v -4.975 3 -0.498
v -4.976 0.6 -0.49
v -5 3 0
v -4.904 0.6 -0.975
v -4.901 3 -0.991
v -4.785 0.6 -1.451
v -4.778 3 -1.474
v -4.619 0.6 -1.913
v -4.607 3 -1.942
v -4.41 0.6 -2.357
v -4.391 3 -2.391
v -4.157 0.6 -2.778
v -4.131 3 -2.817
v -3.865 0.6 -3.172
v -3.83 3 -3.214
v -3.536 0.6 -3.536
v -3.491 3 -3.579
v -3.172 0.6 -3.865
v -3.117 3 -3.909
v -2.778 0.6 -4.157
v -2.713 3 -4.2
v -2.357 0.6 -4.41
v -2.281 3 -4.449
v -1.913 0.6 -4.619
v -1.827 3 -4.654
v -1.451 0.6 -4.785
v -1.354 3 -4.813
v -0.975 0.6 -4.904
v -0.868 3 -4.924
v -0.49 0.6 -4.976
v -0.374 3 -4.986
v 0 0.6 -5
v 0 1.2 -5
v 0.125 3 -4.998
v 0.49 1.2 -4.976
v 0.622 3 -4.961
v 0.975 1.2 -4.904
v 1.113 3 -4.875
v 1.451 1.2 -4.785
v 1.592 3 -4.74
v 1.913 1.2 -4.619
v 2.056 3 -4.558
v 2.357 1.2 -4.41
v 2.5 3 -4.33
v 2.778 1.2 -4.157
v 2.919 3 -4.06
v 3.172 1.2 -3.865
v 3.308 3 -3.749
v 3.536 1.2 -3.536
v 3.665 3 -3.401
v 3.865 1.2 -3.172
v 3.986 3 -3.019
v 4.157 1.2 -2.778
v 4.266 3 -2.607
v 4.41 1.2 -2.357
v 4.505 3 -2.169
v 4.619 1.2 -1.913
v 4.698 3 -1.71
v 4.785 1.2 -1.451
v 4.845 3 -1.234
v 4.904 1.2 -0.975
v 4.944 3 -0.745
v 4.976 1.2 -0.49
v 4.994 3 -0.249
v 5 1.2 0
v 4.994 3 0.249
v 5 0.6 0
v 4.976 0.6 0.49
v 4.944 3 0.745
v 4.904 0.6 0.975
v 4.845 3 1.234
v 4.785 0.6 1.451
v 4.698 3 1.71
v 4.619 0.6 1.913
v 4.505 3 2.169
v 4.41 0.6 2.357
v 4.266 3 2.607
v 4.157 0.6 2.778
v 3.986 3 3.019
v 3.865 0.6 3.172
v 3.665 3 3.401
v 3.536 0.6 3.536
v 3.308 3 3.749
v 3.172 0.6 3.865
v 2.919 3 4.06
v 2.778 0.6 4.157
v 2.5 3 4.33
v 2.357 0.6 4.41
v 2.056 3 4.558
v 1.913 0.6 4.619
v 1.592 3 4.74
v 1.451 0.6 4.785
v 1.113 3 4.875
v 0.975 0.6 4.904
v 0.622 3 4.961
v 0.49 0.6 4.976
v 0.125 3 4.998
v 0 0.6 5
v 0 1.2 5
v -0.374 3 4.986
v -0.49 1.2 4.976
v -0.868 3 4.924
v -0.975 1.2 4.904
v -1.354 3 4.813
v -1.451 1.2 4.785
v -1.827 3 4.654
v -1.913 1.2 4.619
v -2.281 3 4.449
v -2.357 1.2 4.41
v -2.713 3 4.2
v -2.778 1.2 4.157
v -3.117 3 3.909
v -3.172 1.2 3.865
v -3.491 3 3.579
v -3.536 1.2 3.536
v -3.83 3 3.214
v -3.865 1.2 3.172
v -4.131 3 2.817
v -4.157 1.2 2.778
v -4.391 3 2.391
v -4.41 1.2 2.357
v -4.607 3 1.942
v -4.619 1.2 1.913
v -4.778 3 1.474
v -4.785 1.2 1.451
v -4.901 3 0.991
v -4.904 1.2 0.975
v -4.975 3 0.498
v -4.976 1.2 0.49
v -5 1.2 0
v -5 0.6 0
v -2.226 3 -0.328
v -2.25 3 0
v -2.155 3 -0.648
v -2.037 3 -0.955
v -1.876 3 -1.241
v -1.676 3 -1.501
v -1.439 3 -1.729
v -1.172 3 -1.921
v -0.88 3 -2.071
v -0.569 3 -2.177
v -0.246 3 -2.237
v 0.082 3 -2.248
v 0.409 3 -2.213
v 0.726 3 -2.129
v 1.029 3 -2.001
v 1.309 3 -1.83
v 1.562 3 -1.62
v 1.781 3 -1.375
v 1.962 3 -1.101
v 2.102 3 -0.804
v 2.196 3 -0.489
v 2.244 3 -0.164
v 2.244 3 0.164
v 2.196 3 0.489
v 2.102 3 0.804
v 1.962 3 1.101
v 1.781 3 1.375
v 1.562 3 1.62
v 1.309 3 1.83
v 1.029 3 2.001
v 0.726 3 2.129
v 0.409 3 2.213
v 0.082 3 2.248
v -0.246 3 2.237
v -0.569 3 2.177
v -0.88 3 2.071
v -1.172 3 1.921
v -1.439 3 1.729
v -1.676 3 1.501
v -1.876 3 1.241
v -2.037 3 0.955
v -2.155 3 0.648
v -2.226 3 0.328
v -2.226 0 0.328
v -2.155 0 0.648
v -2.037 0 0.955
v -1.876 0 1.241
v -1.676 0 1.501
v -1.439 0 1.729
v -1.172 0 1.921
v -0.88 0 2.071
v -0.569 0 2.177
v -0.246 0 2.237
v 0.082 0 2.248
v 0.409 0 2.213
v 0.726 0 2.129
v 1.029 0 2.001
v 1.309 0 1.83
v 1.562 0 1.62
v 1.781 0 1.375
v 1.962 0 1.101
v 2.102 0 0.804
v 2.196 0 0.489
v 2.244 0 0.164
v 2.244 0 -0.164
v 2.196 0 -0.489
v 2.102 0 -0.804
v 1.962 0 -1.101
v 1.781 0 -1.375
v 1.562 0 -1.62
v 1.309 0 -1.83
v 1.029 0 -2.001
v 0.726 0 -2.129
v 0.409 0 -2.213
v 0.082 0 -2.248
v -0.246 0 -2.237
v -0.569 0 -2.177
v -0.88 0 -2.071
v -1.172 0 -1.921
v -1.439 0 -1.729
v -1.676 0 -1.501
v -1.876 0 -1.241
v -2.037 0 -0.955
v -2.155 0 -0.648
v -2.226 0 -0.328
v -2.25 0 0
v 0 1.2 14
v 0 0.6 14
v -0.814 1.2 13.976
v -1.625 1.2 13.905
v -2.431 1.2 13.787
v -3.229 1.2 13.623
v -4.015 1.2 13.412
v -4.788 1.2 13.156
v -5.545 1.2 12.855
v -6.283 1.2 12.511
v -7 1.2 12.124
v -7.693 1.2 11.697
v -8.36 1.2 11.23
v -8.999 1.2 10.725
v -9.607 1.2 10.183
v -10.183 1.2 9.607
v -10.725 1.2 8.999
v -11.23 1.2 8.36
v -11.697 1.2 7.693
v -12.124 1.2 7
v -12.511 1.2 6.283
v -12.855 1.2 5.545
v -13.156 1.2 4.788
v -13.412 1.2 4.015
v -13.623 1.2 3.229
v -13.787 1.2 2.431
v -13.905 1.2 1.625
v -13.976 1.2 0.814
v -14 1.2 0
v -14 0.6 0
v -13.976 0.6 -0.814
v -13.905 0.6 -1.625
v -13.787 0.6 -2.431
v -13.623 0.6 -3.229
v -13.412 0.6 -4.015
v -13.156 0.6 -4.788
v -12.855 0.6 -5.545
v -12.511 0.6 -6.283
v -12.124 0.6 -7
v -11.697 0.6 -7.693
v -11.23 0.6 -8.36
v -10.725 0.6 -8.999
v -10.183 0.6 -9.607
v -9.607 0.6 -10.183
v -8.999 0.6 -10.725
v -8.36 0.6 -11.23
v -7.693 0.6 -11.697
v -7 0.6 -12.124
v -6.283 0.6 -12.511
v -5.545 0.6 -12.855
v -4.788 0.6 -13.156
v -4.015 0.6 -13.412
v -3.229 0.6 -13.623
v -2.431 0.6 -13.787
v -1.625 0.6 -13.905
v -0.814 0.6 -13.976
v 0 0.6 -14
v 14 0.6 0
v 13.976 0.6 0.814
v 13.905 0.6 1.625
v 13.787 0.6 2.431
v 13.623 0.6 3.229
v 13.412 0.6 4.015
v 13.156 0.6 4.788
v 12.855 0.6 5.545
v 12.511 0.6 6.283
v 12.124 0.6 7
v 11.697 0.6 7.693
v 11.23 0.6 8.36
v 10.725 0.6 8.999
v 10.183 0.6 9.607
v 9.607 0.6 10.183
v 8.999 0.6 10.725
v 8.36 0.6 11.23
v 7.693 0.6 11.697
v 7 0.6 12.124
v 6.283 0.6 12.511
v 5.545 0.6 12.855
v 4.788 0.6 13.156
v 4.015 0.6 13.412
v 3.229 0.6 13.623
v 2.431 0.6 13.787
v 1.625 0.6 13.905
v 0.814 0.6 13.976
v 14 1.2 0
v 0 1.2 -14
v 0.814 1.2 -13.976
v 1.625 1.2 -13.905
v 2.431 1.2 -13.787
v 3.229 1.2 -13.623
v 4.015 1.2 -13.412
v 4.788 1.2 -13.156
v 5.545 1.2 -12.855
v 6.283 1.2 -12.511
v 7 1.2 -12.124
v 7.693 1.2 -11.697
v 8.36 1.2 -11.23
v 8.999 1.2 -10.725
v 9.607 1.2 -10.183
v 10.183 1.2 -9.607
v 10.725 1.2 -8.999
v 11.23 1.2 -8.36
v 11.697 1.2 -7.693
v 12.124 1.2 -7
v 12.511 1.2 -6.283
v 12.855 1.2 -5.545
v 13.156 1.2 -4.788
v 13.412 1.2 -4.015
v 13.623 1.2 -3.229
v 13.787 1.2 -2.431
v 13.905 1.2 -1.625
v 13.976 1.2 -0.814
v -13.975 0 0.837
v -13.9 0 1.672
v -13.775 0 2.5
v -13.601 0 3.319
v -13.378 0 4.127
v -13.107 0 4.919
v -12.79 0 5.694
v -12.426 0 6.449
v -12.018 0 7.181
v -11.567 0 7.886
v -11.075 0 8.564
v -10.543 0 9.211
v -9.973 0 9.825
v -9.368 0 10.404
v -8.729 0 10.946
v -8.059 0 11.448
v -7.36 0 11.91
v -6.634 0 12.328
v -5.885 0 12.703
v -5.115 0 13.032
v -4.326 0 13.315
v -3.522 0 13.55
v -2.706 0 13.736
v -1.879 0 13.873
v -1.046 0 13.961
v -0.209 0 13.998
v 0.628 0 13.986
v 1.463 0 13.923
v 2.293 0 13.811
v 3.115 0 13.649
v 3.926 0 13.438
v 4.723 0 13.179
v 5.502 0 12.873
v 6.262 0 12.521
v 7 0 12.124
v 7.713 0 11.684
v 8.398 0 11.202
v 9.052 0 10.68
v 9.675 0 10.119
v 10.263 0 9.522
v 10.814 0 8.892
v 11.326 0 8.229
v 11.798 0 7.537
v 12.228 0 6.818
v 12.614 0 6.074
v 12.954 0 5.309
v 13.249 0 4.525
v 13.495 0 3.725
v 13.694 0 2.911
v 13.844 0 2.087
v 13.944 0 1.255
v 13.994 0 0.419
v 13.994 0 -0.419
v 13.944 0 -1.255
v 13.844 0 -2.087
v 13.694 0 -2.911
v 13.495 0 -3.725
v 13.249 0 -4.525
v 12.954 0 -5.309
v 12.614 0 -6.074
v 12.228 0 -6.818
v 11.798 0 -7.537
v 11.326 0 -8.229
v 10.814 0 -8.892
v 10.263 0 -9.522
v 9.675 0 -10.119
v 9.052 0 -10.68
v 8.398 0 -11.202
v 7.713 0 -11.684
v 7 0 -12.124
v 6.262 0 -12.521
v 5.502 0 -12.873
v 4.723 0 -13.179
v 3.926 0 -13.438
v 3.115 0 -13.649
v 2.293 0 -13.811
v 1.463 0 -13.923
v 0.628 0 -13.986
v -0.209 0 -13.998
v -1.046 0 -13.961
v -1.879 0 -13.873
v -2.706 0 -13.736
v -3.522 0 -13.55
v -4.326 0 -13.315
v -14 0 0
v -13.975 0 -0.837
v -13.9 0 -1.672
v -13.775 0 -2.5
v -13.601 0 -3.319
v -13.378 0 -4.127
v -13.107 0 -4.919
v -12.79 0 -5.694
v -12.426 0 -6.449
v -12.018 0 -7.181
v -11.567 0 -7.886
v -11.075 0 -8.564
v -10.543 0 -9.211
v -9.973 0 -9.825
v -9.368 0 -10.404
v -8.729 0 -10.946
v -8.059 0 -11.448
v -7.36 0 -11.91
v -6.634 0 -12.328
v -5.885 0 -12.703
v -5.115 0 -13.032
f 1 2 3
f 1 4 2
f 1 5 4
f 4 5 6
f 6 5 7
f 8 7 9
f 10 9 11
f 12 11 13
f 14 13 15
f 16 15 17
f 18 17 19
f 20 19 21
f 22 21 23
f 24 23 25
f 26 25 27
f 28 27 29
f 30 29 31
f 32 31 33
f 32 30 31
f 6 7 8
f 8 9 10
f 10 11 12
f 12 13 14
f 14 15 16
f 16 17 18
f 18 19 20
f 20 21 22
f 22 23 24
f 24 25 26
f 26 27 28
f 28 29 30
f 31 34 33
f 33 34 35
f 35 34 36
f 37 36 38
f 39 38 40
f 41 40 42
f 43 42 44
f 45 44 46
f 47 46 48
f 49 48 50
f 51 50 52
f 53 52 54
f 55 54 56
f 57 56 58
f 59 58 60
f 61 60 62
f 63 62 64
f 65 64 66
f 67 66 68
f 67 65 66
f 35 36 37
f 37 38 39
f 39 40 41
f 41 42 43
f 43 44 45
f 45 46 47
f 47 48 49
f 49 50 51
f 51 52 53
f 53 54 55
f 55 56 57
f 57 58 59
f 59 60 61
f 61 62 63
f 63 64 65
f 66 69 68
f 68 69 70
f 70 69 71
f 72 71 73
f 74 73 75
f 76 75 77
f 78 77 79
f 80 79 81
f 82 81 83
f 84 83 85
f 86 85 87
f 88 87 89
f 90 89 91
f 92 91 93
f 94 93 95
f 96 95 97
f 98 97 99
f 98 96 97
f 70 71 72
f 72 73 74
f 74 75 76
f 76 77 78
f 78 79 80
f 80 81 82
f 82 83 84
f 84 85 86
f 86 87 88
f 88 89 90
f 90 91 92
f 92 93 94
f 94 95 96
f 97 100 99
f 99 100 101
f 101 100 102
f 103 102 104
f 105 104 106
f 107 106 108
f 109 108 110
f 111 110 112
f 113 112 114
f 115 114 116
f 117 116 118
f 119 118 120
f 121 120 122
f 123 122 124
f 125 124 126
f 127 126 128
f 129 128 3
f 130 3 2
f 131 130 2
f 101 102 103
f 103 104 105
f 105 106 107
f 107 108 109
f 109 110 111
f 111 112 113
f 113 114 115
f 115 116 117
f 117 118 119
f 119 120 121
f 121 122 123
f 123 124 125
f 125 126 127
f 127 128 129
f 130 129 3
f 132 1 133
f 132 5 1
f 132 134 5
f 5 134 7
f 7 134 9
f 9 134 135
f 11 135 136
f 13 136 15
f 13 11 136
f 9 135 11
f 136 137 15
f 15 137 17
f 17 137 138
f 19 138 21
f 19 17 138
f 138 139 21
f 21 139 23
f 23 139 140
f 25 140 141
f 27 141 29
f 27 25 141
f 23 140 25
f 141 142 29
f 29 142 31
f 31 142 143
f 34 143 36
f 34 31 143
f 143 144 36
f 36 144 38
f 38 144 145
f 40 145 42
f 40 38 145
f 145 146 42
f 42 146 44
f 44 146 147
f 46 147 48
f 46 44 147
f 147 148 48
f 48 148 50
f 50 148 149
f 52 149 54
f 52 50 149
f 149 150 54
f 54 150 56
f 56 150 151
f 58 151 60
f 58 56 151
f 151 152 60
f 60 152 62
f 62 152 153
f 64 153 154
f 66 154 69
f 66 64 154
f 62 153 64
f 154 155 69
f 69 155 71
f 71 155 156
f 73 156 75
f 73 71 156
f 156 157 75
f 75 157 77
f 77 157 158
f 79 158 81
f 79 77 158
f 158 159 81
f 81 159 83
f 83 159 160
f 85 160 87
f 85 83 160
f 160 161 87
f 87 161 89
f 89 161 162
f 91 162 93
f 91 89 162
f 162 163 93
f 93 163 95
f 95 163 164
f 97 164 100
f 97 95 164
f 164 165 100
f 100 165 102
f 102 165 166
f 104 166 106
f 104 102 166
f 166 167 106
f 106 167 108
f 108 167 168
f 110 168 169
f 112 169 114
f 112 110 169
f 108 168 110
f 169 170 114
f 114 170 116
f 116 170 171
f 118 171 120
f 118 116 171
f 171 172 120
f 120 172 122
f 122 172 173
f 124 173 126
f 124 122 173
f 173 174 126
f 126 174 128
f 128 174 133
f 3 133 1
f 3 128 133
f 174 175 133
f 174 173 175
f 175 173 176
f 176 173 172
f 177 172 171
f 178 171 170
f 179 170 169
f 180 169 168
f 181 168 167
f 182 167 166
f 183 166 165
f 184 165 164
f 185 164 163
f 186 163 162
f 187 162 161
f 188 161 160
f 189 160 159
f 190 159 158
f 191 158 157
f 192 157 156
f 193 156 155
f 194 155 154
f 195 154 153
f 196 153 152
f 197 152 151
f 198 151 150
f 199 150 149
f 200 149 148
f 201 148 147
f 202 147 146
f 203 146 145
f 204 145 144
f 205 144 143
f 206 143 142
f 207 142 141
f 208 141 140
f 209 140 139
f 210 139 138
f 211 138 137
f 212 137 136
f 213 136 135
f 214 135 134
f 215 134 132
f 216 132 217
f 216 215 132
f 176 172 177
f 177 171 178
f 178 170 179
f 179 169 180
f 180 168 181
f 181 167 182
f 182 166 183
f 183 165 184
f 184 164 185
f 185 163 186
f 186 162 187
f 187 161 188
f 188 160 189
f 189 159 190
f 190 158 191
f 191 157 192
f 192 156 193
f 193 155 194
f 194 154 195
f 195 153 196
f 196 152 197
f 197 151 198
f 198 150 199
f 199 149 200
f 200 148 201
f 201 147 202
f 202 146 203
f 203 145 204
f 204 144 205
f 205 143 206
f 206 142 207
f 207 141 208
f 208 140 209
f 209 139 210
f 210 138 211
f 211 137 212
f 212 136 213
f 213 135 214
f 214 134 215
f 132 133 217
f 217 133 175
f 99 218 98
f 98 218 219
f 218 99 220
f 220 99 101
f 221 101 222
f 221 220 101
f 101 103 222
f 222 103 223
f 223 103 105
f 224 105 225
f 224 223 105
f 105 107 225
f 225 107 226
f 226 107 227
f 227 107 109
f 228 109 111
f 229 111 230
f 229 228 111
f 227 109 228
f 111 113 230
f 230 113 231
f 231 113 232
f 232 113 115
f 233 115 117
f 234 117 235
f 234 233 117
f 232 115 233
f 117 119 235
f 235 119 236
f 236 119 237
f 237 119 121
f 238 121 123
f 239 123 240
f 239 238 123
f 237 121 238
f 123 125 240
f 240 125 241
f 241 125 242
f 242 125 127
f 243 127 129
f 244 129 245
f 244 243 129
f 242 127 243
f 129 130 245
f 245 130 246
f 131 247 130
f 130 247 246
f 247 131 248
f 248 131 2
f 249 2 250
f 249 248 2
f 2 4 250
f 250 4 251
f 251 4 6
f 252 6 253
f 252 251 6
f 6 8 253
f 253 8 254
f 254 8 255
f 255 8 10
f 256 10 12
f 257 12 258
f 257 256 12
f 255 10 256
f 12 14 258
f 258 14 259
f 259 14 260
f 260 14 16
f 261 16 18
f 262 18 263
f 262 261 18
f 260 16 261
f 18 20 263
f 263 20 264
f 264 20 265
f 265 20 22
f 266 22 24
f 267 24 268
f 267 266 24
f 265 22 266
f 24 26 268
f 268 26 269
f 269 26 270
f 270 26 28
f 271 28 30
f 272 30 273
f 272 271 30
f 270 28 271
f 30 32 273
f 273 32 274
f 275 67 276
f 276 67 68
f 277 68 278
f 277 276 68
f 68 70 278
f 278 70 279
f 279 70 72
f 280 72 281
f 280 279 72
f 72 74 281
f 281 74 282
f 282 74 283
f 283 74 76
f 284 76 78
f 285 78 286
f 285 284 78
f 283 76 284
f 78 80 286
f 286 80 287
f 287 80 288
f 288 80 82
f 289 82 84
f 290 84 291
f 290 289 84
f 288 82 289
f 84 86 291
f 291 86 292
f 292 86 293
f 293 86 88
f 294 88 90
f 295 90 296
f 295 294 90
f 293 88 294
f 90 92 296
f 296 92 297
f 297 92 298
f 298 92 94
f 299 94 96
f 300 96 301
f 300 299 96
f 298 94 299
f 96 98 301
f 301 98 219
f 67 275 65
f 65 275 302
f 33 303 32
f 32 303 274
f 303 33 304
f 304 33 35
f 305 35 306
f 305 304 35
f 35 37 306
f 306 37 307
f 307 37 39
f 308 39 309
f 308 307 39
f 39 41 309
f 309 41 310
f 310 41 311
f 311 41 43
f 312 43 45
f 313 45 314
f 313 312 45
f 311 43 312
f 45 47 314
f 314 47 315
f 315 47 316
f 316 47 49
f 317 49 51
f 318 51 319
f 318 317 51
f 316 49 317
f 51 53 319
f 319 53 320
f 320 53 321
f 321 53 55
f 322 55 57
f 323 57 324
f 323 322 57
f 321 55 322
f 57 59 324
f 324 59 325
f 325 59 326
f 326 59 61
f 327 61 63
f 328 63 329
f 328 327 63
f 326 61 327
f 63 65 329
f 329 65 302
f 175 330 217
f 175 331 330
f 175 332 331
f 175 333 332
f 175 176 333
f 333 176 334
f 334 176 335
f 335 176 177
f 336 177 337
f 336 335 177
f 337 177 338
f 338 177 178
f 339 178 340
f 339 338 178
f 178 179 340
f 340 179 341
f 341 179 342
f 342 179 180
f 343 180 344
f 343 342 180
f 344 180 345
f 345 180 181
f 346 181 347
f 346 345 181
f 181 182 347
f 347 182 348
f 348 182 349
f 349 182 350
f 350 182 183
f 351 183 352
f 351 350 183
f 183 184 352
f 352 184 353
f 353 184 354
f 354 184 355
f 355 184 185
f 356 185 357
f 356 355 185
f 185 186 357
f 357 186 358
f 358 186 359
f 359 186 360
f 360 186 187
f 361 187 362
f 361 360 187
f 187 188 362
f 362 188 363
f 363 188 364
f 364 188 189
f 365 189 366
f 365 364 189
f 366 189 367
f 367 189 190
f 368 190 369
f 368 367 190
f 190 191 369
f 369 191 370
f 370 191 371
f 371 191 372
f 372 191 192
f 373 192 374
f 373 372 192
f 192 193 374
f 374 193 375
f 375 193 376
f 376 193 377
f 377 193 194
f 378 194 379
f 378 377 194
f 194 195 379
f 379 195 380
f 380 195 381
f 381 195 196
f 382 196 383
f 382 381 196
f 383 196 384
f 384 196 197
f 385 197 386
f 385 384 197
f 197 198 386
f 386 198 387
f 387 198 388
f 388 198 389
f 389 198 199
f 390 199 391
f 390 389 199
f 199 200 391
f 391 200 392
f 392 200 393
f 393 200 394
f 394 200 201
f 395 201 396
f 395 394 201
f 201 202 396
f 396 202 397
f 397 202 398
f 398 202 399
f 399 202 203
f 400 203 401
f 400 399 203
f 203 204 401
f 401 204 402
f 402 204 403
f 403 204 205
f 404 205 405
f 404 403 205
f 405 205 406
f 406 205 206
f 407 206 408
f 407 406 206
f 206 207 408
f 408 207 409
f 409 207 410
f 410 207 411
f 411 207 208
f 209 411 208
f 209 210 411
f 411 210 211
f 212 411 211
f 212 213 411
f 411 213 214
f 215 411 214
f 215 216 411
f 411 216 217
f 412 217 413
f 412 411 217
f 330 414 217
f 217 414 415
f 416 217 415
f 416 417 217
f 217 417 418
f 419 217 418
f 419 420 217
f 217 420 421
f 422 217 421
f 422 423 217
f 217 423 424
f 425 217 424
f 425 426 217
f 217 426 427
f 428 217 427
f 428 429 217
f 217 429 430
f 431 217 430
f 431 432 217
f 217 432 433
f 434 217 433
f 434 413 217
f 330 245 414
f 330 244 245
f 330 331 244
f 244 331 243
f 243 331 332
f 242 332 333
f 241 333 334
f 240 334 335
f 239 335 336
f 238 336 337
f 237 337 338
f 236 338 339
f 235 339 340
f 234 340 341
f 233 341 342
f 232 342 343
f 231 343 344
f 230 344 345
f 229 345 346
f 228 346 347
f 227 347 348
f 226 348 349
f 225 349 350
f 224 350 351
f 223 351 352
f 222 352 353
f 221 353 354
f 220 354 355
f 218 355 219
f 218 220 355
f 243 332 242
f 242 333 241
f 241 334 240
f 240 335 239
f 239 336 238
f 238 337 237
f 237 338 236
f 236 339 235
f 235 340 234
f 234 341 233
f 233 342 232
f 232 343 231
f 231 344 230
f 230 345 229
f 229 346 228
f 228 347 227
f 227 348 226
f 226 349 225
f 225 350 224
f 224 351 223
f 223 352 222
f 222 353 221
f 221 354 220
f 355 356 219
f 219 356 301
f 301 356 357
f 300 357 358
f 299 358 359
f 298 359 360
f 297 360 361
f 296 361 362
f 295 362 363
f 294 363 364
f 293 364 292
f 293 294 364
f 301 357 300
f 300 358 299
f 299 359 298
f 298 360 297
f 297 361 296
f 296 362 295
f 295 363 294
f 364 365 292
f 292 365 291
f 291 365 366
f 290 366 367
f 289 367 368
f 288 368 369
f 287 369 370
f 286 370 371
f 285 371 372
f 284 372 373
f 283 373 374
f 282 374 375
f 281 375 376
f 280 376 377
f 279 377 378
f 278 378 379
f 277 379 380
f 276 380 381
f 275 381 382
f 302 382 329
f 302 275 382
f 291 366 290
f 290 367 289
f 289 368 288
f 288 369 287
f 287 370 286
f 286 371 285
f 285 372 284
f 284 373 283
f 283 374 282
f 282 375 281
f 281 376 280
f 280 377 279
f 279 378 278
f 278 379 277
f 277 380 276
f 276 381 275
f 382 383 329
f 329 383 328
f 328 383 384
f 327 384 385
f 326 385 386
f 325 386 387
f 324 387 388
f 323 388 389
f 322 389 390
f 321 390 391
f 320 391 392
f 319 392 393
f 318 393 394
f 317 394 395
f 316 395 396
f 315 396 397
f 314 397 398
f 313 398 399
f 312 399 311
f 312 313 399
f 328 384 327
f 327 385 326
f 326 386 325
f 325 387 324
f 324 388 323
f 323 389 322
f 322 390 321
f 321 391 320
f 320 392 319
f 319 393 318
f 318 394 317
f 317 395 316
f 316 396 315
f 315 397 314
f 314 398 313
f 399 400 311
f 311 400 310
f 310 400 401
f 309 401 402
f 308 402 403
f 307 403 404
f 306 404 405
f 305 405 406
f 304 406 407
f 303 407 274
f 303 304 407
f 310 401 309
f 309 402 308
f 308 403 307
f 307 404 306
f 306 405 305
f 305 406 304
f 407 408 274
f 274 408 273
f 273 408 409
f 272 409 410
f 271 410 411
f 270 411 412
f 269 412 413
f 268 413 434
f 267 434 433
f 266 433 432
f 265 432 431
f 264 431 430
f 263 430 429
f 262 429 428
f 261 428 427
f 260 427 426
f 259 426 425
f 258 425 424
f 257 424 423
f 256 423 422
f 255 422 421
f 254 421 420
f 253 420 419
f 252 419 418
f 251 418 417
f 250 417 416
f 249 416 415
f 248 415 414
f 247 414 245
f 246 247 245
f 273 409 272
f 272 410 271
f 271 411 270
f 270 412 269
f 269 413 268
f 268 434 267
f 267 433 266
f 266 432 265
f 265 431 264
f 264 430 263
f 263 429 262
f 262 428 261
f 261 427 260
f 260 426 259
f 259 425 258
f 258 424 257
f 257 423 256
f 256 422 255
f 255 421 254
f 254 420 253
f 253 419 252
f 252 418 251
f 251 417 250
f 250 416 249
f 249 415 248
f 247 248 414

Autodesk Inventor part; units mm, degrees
ref_plane "YZ Plane" through (0, 0, 0) normal (1, 0, 0) x (0, 1, 0)
ref_plane "XY Plane" through (0, 0, 0) normal (0, 0, 1) x (1, 0, 0)
sketch "Sketch1" plane through (0, 0, 0) normal (0, 1, 0) x (-1, 0, 0)
  arc A0 (0, 14) -> (0, -14) centre (0, 0) ccw
  line L0 (0, 0) -> (0, 14)
  line L1 (0, 0) -> (14, 0)
  arc A1 (14, 0) -> (0, 14) centre (0, 0) ccw
  line L2 (0, 0) -> (0, -14)
  arc A2 (0, -14) -> (14, 0) centre (0, 0) ccw
  dimension "d0" = 28
  dimension "d5" = 90
  dimension "d10" = 90
extrude "Extrusion1" add sketch "Sketch1" along normal blind 0.5
extrude "Extrusion2" add sketch "Sketch1" along normal blind 1.2 contours A1 L1 L0
extrude "Extrusion3" add sketch "Sketch1" along normal blind 0.6 contours L2 L1 A2
pattern_circular "Circular Pattern1" count 2 over 360 about axis through (0, -10, 0) along (0, 1, 0) of "Extrusion2", "Extrusion3"
ref_plane "Work Plane1" through (0, 0.5, 0) normal (0, 1, 0) x (-1, 0, 0)
sketch "Sketch2" plane through (0, 0.5, 0) normal (0, 1, 0) x (-1, 0, 0)
  circle A0 centre (0, 0) radius 5
  circle A1 centre (0, 0) radius 2.25
  dimension "d17" = 10
  dimension "d20" = 4.5
extrude "Extrusion4" cut sketch "Sketch2" along normal blind 2 contours A0 | A1
extrude "Extrusion5" cut sketch "Sketch2" along normal mid plane 5 contours A1
extrude "Extrusion6" add sketch "Sketch2" along normal blind 2.5
properties part number "EncoderDisk"
